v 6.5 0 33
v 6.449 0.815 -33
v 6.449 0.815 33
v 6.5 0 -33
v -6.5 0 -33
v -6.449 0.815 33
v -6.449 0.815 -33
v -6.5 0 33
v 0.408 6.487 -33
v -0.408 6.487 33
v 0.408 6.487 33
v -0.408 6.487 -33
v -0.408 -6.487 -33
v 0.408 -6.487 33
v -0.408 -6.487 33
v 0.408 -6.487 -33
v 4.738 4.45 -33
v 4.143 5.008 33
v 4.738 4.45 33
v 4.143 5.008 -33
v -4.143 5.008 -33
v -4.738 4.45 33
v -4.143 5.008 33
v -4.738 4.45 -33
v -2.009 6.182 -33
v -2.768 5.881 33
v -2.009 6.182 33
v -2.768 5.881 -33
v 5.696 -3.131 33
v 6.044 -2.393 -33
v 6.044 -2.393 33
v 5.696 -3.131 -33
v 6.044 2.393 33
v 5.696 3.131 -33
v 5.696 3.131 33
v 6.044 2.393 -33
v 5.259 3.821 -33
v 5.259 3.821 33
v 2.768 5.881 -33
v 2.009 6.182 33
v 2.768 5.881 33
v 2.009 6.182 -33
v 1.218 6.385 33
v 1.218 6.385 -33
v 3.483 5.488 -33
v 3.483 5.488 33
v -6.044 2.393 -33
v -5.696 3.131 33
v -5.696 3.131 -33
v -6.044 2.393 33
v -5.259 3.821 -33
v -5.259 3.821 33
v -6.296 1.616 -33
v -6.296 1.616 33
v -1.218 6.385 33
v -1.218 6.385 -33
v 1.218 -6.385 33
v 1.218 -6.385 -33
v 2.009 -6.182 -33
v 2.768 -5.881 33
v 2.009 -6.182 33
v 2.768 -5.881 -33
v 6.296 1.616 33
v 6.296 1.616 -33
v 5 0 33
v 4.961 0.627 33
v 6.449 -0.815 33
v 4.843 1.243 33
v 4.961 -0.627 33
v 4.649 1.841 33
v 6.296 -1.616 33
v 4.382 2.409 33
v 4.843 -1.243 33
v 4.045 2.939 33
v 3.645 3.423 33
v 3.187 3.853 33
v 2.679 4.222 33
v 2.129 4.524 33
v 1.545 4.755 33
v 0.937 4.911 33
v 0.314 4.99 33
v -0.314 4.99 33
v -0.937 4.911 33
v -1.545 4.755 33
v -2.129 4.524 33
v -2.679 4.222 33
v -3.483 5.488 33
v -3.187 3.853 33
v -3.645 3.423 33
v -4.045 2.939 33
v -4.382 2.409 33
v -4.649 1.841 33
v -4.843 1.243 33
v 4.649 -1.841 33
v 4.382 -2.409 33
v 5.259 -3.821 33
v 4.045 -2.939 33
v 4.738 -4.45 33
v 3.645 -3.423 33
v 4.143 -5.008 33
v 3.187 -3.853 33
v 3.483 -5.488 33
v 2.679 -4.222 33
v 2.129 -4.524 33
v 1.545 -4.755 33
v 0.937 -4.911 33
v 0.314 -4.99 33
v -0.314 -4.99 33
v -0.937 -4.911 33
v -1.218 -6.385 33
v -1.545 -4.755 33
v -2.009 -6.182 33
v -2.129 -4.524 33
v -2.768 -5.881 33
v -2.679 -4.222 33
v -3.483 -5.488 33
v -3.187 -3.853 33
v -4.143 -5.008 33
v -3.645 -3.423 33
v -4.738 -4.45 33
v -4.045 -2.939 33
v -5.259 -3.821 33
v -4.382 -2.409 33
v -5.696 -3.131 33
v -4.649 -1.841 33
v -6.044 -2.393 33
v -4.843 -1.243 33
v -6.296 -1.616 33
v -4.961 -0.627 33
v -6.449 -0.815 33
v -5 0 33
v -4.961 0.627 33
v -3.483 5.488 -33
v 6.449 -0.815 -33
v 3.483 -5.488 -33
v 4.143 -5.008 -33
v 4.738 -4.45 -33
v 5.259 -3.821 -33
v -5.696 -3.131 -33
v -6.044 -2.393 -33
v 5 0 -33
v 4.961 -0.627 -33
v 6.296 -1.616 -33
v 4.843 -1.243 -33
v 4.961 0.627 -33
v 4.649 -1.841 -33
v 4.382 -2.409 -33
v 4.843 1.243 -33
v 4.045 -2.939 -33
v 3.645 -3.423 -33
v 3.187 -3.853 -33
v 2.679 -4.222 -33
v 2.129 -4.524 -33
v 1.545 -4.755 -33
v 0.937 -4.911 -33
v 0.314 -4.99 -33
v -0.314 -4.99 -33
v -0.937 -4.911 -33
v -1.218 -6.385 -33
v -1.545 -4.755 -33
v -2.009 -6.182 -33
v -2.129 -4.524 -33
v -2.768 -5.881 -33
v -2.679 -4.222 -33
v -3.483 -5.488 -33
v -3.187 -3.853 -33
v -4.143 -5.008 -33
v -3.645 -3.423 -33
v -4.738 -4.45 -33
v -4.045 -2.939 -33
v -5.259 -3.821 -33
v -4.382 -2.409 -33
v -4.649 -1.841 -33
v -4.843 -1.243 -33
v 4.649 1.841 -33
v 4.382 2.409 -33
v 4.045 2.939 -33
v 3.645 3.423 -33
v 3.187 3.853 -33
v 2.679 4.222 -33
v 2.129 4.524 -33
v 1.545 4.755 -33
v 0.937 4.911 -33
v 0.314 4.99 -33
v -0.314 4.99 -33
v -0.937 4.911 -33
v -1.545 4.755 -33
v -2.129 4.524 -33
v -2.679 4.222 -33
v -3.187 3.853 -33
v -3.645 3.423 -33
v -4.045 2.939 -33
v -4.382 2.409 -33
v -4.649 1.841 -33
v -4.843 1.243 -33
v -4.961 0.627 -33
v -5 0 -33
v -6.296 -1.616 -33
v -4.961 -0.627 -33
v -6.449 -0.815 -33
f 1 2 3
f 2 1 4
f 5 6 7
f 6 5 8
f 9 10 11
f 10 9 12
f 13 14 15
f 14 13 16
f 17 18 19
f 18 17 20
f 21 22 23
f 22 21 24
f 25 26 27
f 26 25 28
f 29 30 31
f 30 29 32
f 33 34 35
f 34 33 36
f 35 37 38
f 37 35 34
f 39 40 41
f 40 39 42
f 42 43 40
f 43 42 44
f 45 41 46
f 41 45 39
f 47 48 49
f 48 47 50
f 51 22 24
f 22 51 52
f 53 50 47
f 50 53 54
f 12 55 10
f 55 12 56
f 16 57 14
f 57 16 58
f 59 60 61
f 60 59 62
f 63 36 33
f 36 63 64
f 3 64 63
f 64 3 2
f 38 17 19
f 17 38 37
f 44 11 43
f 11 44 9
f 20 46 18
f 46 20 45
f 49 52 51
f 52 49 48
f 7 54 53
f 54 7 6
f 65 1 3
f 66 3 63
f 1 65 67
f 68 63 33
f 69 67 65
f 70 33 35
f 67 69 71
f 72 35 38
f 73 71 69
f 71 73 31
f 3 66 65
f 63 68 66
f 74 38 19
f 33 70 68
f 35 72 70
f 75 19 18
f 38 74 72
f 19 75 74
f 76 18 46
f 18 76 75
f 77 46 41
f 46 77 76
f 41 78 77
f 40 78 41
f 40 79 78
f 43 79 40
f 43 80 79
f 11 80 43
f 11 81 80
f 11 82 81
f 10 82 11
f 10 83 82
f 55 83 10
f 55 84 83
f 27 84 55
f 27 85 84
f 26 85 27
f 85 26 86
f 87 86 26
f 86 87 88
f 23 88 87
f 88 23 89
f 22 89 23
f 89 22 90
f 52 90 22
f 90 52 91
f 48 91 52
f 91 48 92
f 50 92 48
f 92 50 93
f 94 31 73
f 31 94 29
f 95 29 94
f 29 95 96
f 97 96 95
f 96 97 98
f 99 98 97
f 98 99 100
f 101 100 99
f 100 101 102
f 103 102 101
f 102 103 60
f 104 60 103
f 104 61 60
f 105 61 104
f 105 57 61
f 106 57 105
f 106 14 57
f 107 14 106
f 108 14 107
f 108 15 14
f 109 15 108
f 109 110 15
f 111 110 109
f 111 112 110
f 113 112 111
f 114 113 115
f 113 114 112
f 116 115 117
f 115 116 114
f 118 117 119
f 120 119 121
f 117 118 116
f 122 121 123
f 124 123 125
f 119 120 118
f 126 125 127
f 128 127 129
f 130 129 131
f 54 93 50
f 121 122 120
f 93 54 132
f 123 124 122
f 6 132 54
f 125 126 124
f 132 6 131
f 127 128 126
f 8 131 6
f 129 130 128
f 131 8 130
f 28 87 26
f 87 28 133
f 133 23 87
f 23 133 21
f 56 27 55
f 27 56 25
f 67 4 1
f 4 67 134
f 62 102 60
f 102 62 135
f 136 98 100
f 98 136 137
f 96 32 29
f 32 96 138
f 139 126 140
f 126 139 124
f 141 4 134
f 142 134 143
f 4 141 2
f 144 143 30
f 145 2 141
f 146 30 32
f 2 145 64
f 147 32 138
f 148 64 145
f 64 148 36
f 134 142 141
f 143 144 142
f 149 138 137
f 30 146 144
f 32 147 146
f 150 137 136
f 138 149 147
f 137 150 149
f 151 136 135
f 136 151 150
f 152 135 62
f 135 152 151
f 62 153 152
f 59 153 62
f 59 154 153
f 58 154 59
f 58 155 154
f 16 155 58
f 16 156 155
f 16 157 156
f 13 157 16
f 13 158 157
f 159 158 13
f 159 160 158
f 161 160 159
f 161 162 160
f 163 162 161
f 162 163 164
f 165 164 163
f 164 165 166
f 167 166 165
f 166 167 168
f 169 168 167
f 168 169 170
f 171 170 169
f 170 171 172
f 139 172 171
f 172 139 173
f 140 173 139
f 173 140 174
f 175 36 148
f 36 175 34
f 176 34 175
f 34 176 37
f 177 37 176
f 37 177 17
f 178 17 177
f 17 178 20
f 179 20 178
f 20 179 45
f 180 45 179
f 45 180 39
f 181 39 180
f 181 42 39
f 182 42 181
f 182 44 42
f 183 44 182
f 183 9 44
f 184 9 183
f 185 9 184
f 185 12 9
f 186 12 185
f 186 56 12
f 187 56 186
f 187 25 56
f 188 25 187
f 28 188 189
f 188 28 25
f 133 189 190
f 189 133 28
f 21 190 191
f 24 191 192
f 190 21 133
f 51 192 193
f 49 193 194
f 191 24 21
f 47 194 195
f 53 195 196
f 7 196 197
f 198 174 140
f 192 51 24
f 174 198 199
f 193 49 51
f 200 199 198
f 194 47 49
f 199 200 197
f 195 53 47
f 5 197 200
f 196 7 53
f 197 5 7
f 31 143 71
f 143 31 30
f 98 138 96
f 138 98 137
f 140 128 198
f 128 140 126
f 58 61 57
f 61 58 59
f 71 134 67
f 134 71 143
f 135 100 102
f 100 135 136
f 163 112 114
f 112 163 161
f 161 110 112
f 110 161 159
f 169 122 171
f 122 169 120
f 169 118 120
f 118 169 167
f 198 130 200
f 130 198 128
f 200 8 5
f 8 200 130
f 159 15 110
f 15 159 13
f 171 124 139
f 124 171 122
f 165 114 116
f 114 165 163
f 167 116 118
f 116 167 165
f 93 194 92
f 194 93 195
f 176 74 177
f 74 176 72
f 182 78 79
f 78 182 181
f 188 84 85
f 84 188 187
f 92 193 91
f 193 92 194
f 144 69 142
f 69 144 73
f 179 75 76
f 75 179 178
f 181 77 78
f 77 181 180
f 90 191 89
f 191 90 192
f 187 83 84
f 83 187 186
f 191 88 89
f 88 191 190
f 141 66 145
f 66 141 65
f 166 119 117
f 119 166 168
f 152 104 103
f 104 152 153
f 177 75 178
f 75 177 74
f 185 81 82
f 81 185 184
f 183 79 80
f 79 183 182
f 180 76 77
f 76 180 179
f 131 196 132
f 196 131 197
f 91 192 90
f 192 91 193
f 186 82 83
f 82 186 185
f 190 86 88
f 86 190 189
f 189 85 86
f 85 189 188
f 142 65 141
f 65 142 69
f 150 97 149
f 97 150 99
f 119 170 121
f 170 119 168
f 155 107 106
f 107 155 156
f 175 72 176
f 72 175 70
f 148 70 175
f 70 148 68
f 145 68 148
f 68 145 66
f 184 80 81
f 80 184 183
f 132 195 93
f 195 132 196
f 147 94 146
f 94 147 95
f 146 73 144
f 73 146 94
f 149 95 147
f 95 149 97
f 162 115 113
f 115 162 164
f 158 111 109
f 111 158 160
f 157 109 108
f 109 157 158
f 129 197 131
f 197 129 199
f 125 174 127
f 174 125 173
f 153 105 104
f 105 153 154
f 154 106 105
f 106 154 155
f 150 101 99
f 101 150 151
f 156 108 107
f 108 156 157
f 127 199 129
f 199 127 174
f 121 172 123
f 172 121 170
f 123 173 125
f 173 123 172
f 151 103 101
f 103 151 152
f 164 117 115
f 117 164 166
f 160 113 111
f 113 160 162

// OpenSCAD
$fn = 50;


difference() {
	union() {
		translate(v = [0, 0, -33.0000000000]) {
			cylinder(h = 66, r = 6.5000000000);
		}
	}
	union() {
		translate(v = [0, 0, -100.0000000000]) {
			cylinder(h = 200, r = 5.0000000000);
		}
	}
}
